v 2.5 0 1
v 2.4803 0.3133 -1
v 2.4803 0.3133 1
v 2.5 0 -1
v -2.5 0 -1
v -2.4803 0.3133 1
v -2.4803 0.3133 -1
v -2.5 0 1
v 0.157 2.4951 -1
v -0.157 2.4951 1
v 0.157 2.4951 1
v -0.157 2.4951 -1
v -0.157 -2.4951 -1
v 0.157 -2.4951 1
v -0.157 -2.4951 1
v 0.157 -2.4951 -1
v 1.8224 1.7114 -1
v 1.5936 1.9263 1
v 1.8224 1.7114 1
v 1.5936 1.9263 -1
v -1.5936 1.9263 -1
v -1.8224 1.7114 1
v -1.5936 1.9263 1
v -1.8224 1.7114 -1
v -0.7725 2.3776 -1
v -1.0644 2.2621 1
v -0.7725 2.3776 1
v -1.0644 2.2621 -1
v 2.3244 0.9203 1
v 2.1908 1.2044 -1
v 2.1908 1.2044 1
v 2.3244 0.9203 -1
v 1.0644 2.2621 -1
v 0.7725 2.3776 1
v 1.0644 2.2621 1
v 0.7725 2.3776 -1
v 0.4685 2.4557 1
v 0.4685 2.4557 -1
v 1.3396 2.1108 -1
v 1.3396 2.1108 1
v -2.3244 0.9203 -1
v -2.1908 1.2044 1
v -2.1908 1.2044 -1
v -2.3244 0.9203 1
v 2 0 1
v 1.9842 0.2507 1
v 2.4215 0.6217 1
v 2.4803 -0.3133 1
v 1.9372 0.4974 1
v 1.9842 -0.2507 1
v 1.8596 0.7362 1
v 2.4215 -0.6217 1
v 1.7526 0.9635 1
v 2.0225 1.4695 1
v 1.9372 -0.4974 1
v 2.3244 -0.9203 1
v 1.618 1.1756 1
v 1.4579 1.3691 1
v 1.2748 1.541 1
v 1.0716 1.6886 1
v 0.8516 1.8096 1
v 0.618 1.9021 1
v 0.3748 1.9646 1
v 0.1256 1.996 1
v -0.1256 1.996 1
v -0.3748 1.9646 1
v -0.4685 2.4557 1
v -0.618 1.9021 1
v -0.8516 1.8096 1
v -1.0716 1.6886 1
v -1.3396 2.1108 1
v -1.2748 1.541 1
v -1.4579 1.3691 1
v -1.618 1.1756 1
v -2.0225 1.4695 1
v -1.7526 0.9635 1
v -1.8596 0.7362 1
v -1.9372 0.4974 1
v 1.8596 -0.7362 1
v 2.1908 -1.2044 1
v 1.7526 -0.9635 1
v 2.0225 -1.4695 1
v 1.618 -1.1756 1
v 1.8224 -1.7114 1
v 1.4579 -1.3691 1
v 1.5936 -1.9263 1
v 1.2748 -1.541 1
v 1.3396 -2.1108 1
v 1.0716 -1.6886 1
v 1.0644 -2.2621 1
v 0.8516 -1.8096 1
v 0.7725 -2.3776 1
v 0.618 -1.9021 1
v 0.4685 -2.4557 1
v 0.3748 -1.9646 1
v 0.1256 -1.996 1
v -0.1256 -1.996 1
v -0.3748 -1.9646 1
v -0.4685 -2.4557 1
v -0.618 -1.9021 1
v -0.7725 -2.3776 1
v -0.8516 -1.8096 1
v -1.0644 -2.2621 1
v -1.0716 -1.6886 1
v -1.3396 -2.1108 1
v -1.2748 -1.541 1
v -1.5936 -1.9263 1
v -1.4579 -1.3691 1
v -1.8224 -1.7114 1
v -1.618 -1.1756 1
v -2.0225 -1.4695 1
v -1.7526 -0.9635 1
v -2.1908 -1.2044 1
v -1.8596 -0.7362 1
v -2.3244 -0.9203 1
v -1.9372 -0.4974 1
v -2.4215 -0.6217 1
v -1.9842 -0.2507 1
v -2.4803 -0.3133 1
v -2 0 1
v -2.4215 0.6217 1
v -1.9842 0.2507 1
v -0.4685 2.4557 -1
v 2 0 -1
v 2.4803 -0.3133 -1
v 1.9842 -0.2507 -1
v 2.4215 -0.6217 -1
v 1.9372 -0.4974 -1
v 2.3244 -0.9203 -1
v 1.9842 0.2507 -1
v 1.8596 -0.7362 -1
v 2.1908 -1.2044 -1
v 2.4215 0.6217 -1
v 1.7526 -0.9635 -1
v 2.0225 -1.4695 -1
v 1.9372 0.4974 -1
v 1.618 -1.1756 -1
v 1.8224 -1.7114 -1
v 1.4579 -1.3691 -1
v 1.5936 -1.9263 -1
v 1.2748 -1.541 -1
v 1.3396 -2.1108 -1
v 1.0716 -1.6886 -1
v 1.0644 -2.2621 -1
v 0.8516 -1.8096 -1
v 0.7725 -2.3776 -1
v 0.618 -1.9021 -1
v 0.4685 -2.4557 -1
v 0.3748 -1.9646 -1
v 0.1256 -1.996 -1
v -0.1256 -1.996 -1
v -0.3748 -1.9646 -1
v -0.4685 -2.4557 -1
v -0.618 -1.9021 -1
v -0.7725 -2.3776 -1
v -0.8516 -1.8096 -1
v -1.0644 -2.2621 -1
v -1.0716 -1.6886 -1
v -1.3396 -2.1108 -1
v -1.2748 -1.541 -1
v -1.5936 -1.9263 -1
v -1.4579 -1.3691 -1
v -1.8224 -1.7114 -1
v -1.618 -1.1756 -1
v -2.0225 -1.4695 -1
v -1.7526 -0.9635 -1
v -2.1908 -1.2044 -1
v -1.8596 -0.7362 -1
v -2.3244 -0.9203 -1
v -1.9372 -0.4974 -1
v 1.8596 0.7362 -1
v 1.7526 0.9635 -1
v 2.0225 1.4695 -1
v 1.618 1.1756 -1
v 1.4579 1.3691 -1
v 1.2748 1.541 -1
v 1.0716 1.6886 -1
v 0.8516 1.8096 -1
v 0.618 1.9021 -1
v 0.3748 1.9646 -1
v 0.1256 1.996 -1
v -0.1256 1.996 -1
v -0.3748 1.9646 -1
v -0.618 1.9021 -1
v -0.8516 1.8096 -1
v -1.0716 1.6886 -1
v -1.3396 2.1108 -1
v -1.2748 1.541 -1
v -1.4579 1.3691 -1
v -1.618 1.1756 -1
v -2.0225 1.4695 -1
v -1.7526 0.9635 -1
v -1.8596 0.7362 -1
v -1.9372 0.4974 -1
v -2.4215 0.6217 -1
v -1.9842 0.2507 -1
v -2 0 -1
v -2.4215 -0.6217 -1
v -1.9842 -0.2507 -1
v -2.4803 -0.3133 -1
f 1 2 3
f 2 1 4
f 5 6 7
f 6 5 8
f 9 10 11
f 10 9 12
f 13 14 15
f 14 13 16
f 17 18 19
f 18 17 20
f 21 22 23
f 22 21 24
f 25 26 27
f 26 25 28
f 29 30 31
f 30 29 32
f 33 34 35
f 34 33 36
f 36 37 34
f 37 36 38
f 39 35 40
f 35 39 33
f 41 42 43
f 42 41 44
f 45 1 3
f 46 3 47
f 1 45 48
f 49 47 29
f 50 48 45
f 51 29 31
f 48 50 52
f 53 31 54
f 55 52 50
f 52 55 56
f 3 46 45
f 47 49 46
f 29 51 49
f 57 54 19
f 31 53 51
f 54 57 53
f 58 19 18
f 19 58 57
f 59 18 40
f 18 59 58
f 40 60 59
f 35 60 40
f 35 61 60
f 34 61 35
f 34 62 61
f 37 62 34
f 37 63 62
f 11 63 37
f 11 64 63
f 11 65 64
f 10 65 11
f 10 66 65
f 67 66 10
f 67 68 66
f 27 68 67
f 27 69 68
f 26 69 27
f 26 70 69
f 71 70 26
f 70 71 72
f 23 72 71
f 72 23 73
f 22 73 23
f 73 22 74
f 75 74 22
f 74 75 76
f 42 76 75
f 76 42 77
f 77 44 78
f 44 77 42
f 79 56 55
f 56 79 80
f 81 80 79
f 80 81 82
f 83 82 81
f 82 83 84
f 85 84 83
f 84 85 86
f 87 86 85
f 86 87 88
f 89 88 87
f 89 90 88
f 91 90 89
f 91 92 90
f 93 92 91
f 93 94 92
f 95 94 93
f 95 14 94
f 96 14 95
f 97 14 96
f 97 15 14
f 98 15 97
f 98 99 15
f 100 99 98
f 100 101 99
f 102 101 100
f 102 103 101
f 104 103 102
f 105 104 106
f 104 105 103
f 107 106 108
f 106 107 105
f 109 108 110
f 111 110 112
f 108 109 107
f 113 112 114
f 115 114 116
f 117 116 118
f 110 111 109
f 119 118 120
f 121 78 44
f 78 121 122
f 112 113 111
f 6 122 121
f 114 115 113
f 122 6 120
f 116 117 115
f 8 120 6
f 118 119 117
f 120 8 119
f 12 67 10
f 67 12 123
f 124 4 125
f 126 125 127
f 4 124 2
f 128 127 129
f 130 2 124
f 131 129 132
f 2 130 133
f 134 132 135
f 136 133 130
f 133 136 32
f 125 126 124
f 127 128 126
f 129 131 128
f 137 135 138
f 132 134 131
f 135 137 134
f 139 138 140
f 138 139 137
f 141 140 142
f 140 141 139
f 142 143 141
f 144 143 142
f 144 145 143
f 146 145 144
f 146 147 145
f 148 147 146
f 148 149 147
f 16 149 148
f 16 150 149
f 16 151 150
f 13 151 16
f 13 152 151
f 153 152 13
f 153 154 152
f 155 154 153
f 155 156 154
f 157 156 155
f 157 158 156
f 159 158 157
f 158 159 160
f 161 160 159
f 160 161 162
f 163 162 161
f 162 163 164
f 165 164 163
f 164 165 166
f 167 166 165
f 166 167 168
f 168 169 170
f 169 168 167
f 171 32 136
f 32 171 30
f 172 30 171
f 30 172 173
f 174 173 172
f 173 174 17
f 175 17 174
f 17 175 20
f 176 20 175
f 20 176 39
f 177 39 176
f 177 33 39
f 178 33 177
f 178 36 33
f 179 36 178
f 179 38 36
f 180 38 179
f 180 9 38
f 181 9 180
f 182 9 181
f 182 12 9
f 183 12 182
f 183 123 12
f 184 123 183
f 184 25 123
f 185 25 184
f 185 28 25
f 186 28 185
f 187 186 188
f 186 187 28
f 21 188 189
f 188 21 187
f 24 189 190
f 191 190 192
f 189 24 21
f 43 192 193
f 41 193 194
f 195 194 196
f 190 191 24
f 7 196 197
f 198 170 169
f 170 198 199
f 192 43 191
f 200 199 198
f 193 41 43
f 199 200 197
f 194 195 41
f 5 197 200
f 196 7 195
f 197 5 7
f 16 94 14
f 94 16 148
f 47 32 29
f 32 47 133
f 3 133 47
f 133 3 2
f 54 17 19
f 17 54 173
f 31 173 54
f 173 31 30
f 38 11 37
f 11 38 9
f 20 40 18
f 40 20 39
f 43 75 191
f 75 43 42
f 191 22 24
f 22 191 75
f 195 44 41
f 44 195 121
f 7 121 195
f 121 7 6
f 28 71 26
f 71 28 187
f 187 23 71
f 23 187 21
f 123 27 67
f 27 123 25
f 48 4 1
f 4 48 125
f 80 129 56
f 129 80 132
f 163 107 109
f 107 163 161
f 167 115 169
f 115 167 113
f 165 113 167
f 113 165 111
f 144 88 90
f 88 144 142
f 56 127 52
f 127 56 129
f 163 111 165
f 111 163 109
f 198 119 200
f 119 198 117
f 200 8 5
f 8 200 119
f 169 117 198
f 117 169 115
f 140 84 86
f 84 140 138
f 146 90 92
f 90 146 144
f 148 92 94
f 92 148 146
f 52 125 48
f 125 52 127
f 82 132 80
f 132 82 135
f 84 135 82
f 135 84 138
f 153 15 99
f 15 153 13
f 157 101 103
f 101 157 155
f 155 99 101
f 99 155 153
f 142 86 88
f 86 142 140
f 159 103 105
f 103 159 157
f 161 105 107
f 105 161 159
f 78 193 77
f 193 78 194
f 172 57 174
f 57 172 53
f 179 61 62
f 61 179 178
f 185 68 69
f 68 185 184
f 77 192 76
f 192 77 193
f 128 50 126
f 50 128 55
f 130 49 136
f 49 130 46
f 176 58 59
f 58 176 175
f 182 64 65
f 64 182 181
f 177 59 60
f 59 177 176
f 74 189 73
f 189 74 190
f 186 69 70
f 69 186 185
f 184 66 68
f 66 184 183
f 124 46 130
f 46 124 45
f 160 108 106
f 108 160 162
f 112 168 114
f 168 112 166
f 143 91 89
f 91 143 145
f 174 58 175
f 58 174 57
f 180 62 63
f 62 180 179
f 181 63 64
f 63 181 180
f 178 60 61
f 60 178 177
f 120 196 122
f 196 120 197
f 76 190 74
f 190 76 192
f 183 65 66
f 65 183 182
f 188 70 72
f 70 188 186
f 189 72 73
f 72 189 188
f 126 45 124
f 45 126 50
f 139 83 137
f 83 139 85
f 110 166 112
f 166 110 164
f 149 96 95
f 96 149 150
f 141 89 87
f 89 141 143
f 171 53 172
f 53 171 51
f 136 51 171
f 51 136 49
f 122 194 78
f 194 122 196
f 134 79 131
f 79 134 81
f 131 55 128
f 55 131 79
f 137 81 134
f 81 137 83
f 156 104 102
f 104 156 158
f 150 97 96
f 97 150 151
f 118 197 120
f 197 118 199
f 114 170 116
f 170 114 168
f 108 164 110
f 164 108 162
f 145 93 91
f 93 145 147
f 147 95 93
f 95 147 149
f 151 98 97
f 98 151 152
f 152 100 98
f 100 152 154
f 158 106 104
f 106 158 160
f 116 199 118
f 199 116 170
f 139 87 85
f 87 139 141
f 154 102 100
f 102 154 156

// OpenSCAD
$fn = 50;


difference() {
	union() {
		translate(v = [0, 0, -1.0000000000]) {
			cylinder(h = 2, r = 2.5000000000);
		}
	}
	union() {
		translate(v = [0, 0, -100.0000000000]) {
			cylinder(h = 200, r = 2);
		}
	}
}
